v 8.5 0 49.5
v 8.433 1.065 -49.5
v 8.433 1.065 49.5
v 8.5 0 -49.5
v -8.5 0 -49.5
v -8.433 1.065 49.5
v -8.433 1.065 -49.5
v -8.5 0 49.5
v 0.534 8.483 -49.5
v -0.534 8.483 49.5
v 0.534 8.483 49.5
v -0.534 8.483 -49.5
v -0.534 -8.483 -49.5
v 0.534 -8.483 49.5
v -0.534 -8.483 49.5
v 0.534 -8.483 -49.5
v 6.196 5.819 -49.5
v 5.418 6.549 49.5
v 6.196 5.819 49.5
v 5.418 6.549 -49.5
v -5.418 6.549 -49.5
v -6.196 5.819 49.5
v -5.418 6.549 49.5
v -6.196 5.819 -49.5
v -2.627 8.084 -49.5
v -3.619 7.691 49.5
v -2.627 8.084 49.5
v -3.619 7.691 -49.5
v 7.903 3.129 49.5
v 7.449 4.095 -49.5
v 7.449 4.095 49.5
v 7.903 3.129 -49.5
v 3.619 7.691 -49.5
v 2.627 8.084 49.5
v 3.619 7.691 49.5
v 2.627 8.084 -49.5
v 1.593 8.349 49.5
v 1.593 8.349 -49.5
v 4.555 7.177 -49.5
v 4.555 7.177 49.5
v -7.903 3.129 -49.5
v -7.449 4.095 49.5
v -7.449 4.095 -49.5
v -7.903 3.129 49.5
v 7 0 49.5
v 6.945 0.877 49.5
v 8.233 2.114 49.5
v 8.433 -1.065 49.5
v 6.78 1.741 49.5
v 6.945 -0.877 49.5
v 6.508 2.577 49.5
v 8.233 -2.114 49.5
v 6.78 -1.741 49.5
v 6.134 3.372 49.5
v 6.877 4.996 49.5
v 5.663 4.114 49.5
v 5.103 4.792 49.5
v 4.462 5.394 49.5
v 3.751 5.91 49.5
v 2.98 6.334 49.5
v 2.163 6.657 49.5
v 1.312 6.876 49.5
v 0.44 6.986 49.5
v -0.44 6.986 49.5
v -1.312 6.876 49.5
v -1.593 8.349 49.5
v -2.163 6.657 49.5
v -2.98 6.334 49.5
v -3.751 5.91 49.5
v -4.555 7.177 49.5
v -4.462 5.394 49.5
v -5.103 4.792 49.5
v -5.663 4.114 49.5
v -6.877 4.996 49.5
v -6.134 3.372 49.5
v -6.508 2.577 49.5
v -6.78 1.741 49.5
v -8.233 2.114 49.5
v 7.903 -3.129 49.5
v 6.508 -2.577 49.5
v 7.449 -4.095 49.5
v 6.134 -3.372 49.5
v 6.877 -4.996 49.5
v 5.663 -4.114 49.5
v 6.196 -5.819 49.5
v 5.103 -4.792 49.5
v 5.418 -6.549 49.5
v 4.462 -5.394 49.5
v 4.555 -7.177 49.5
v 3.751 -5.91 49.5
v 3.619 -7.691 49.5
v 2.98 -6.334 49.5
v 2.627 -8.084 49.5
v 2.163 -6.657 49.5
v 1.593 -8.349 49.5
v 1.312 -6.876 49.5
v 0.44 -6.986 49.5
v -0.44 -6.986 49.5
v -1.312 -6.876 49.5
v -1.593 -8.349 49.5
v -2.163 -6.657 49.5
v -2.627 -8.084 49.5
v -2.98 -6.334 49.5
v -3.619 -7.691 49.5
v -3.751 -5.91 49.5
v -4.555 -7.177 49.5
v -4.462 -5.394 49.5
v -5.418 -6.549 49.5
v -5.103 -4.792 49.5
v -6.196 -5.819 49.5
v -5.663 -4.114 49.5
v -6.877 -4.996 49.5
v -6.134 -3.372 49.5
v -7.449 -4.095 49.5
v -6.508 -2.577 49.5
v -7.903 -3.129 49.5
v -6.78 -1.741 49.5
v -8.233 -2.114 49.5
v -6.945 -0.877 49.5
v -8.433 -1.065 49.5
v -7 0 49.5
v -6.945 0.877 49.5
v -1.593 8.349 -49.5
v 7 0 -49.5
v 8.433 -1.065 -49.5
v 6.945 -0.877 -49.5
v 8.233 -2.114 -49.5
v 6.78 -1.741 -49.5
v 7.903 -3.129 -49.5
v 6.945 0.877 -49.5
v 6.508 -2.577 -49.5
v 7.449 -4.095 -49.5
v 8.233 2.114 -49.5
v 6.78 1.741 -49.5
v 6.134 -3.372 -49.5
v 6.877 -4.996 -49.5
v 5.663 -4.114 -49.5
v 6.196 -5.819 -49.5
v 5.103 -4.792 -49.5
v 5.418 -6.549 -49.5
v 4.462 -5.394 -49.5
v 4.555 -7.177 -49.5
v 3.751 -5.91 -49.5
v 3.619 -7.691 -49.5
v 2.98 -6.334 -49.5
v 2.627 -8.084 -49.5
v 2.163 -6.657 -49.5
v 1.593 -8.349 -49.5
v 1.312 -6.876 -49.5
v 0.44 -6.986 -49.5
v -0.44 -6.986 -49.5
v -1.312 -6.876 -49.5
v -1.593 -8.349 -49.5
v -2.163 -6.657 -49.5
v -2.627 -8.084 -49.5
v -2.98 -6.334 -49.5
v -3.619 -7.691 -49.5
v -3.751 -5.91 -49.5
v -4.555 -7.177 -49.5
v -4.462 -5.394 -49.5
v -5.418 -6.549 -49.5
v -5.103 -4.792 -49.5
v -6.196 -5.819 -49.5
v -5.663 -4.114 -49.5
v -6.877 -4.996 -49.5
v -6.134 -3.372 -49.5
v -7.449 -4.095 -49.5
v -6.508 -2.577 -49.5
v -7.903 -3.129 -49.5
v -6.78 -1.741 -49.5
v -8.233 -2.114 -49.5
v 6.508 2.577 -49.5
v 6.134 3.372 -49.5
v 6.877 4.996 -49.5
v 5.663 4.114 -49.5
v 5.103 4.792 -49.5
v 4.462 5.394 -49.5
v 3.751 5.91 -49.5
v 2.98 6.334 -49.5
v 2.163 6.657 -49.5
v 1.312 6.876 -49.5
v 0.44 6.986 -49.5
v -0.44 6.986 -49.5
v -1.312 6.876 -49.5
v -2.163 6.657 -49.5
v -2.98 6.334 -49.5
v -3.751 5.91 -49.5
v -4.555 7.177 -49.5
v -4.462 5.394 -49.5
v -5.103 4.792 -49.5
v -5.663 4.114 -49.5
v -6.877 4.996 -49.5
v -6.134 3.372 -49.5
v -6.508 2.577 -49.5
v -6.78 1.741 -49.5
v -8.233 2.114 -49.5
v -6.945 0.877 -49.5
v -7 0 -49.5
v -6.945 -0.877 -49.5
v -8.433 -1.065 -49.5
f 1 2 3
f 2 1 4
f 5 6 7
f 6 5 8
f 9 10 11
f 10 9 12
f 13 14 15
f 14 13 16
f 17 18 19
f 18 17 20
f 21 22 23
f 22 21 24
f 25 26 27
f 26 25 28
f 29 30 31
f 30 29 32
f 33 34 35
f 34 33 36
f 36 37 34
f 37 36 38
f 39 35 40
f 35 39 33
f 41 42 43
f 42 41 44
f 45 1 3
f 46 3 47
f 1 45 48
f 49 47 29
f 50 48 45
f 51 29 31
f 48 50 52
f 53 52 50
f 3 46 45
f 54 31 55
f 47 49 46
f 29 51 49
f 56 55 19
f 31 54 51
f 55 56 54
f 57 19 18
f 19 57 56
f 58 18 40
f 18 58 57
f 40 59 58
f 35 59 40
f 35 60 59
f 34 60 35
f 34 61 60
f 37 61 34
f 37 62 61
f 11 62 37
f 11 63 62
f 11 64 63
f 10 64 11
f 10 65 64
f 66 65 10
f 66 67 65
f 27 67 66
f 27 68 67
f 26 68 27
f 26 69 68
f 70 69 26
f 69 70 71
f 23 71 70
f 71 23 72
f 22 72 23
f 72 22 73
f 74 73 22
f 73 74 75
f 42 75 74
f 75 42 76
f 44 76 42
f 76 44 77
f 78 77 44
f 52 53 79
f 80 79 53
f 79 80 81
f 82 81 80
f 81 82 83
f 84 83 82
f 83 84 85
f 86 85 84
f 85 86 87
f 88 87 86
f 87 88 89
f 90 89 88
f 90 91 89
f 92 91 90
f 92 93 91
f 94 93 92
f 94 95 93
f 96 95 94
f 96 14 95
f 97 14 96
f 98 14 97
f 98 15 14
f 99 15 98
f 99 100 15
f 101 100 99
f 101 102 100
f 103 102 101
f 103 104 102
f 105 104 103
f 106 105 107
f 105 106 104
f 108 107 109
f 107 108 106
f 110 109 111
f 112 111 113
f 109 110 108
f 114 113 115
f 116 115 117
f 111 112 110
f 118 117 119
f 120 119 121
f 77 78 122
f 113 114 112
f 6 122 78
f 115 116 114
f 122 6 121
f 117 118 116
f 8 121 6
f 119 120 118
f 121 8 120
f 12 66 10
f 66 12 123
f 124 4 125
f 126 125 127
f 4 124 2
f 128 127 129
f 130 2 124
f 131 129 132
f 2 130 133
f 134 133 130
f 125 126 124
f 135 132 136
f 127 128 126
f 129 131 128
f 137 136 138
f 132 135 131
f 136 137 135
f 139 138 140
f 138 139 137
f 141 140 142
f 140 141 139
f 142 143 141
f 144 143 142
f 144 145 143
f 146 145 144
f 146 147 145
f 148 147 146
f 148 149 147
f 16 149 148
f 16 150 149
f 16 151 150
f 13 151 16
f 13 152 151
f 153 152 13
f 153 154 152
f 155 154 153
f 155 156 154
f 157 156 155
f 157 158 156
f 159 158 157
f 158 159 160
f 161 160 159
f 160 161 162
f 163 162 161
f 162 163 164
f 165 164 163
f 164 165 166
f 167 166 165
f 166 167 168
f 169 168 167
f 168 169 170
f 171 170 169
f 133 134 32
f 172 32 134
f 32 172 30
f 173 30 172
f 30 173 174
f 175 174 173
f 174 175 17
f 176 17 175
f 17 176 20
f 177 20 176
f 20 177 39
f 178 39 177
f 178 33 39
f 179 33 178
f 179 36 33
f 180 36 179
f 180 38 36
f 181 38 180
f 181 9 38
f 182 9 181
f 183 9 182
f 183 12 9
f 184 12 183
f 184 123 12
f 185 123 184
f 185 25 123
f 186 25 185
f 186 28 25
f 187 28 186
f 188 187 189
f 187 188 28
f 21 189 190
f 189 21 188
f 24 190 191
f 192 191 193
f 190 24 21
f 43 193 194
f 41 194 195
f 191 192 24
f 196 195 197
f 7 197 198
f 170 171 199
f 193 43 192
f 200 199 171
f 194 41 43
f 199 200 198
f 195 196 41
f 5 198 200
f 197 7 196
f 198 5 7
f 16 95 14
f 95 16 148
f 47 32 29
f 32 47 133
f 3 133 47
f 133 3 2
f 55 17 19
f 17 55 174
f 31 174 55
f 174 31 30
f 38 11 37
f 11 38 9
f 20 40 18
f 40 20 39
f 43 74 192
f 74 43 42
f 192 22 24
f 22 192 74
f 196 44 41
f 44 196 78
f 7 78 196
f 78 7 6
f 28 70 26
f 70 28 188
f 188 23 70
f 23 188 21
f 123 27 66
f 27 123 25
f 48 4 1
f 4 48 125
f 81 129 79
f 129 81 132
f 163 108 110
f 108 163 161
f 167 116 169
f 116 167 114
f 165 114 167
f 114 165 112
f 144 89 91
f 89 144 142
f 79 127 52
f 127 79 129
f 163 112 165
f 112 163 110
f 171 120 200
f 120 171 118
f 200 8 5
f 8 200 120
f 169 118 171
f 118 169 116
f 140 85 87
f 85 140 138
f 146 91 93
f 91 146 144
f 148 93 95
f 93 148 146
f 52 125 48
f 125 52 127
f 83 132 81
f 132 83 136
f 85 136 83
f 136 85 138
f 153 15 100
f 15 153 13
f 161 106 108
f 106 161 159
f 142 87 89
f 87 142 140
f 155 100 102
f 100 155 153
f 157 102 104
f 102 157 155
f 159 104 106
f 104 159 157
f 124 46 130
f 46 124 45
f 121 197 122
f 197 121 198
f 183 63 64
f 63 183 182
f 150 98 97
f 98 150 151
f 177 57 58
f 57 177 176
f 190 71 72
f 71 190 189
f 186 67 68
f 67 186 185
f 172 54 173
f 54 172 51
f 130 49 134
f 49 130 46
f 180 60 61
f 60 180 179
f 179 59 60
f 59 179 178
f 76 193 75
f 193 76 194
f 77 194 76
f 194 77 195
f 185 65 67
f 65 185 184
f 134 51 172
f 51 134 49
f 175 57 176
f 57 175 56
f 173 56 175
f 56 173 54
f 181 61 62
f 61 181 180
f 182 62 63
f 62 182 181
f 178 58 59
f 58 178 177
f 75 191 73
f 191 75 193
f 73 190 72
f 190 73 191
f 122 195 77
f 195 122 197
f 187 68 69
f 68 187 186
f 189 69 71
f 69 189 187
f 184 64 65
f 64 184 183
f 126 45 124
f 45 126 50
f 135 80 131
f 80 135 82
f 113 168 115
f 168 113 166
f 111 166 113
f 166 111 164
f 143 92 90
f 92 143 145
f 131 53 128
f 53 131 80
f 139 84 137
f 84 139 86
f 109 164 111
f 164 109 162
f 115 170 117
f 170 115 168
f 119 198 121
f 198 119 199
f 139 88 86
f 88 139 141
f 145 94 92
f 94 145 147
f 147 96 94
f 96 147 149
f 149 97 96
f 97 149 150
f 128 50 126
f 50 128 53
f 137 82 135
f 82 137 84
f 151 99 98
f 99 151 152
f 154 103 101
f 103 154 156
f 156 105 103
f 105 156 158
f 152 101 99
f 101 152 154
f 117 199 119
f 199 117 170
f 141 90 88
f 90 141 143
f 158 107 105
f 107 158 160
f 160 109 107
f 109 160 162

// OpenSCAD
$fn = 50;


difference() {
	union() {
		translate(v = [0, 0, -49.5000000000]) {
			cylinder(h = 99, r = 8.5000000000);
		}
	}
	union() {
		translate(v = [0, 0, -100.0000000000]) {
			cylinder(h = 200, r = 7);
		}
	}
}
